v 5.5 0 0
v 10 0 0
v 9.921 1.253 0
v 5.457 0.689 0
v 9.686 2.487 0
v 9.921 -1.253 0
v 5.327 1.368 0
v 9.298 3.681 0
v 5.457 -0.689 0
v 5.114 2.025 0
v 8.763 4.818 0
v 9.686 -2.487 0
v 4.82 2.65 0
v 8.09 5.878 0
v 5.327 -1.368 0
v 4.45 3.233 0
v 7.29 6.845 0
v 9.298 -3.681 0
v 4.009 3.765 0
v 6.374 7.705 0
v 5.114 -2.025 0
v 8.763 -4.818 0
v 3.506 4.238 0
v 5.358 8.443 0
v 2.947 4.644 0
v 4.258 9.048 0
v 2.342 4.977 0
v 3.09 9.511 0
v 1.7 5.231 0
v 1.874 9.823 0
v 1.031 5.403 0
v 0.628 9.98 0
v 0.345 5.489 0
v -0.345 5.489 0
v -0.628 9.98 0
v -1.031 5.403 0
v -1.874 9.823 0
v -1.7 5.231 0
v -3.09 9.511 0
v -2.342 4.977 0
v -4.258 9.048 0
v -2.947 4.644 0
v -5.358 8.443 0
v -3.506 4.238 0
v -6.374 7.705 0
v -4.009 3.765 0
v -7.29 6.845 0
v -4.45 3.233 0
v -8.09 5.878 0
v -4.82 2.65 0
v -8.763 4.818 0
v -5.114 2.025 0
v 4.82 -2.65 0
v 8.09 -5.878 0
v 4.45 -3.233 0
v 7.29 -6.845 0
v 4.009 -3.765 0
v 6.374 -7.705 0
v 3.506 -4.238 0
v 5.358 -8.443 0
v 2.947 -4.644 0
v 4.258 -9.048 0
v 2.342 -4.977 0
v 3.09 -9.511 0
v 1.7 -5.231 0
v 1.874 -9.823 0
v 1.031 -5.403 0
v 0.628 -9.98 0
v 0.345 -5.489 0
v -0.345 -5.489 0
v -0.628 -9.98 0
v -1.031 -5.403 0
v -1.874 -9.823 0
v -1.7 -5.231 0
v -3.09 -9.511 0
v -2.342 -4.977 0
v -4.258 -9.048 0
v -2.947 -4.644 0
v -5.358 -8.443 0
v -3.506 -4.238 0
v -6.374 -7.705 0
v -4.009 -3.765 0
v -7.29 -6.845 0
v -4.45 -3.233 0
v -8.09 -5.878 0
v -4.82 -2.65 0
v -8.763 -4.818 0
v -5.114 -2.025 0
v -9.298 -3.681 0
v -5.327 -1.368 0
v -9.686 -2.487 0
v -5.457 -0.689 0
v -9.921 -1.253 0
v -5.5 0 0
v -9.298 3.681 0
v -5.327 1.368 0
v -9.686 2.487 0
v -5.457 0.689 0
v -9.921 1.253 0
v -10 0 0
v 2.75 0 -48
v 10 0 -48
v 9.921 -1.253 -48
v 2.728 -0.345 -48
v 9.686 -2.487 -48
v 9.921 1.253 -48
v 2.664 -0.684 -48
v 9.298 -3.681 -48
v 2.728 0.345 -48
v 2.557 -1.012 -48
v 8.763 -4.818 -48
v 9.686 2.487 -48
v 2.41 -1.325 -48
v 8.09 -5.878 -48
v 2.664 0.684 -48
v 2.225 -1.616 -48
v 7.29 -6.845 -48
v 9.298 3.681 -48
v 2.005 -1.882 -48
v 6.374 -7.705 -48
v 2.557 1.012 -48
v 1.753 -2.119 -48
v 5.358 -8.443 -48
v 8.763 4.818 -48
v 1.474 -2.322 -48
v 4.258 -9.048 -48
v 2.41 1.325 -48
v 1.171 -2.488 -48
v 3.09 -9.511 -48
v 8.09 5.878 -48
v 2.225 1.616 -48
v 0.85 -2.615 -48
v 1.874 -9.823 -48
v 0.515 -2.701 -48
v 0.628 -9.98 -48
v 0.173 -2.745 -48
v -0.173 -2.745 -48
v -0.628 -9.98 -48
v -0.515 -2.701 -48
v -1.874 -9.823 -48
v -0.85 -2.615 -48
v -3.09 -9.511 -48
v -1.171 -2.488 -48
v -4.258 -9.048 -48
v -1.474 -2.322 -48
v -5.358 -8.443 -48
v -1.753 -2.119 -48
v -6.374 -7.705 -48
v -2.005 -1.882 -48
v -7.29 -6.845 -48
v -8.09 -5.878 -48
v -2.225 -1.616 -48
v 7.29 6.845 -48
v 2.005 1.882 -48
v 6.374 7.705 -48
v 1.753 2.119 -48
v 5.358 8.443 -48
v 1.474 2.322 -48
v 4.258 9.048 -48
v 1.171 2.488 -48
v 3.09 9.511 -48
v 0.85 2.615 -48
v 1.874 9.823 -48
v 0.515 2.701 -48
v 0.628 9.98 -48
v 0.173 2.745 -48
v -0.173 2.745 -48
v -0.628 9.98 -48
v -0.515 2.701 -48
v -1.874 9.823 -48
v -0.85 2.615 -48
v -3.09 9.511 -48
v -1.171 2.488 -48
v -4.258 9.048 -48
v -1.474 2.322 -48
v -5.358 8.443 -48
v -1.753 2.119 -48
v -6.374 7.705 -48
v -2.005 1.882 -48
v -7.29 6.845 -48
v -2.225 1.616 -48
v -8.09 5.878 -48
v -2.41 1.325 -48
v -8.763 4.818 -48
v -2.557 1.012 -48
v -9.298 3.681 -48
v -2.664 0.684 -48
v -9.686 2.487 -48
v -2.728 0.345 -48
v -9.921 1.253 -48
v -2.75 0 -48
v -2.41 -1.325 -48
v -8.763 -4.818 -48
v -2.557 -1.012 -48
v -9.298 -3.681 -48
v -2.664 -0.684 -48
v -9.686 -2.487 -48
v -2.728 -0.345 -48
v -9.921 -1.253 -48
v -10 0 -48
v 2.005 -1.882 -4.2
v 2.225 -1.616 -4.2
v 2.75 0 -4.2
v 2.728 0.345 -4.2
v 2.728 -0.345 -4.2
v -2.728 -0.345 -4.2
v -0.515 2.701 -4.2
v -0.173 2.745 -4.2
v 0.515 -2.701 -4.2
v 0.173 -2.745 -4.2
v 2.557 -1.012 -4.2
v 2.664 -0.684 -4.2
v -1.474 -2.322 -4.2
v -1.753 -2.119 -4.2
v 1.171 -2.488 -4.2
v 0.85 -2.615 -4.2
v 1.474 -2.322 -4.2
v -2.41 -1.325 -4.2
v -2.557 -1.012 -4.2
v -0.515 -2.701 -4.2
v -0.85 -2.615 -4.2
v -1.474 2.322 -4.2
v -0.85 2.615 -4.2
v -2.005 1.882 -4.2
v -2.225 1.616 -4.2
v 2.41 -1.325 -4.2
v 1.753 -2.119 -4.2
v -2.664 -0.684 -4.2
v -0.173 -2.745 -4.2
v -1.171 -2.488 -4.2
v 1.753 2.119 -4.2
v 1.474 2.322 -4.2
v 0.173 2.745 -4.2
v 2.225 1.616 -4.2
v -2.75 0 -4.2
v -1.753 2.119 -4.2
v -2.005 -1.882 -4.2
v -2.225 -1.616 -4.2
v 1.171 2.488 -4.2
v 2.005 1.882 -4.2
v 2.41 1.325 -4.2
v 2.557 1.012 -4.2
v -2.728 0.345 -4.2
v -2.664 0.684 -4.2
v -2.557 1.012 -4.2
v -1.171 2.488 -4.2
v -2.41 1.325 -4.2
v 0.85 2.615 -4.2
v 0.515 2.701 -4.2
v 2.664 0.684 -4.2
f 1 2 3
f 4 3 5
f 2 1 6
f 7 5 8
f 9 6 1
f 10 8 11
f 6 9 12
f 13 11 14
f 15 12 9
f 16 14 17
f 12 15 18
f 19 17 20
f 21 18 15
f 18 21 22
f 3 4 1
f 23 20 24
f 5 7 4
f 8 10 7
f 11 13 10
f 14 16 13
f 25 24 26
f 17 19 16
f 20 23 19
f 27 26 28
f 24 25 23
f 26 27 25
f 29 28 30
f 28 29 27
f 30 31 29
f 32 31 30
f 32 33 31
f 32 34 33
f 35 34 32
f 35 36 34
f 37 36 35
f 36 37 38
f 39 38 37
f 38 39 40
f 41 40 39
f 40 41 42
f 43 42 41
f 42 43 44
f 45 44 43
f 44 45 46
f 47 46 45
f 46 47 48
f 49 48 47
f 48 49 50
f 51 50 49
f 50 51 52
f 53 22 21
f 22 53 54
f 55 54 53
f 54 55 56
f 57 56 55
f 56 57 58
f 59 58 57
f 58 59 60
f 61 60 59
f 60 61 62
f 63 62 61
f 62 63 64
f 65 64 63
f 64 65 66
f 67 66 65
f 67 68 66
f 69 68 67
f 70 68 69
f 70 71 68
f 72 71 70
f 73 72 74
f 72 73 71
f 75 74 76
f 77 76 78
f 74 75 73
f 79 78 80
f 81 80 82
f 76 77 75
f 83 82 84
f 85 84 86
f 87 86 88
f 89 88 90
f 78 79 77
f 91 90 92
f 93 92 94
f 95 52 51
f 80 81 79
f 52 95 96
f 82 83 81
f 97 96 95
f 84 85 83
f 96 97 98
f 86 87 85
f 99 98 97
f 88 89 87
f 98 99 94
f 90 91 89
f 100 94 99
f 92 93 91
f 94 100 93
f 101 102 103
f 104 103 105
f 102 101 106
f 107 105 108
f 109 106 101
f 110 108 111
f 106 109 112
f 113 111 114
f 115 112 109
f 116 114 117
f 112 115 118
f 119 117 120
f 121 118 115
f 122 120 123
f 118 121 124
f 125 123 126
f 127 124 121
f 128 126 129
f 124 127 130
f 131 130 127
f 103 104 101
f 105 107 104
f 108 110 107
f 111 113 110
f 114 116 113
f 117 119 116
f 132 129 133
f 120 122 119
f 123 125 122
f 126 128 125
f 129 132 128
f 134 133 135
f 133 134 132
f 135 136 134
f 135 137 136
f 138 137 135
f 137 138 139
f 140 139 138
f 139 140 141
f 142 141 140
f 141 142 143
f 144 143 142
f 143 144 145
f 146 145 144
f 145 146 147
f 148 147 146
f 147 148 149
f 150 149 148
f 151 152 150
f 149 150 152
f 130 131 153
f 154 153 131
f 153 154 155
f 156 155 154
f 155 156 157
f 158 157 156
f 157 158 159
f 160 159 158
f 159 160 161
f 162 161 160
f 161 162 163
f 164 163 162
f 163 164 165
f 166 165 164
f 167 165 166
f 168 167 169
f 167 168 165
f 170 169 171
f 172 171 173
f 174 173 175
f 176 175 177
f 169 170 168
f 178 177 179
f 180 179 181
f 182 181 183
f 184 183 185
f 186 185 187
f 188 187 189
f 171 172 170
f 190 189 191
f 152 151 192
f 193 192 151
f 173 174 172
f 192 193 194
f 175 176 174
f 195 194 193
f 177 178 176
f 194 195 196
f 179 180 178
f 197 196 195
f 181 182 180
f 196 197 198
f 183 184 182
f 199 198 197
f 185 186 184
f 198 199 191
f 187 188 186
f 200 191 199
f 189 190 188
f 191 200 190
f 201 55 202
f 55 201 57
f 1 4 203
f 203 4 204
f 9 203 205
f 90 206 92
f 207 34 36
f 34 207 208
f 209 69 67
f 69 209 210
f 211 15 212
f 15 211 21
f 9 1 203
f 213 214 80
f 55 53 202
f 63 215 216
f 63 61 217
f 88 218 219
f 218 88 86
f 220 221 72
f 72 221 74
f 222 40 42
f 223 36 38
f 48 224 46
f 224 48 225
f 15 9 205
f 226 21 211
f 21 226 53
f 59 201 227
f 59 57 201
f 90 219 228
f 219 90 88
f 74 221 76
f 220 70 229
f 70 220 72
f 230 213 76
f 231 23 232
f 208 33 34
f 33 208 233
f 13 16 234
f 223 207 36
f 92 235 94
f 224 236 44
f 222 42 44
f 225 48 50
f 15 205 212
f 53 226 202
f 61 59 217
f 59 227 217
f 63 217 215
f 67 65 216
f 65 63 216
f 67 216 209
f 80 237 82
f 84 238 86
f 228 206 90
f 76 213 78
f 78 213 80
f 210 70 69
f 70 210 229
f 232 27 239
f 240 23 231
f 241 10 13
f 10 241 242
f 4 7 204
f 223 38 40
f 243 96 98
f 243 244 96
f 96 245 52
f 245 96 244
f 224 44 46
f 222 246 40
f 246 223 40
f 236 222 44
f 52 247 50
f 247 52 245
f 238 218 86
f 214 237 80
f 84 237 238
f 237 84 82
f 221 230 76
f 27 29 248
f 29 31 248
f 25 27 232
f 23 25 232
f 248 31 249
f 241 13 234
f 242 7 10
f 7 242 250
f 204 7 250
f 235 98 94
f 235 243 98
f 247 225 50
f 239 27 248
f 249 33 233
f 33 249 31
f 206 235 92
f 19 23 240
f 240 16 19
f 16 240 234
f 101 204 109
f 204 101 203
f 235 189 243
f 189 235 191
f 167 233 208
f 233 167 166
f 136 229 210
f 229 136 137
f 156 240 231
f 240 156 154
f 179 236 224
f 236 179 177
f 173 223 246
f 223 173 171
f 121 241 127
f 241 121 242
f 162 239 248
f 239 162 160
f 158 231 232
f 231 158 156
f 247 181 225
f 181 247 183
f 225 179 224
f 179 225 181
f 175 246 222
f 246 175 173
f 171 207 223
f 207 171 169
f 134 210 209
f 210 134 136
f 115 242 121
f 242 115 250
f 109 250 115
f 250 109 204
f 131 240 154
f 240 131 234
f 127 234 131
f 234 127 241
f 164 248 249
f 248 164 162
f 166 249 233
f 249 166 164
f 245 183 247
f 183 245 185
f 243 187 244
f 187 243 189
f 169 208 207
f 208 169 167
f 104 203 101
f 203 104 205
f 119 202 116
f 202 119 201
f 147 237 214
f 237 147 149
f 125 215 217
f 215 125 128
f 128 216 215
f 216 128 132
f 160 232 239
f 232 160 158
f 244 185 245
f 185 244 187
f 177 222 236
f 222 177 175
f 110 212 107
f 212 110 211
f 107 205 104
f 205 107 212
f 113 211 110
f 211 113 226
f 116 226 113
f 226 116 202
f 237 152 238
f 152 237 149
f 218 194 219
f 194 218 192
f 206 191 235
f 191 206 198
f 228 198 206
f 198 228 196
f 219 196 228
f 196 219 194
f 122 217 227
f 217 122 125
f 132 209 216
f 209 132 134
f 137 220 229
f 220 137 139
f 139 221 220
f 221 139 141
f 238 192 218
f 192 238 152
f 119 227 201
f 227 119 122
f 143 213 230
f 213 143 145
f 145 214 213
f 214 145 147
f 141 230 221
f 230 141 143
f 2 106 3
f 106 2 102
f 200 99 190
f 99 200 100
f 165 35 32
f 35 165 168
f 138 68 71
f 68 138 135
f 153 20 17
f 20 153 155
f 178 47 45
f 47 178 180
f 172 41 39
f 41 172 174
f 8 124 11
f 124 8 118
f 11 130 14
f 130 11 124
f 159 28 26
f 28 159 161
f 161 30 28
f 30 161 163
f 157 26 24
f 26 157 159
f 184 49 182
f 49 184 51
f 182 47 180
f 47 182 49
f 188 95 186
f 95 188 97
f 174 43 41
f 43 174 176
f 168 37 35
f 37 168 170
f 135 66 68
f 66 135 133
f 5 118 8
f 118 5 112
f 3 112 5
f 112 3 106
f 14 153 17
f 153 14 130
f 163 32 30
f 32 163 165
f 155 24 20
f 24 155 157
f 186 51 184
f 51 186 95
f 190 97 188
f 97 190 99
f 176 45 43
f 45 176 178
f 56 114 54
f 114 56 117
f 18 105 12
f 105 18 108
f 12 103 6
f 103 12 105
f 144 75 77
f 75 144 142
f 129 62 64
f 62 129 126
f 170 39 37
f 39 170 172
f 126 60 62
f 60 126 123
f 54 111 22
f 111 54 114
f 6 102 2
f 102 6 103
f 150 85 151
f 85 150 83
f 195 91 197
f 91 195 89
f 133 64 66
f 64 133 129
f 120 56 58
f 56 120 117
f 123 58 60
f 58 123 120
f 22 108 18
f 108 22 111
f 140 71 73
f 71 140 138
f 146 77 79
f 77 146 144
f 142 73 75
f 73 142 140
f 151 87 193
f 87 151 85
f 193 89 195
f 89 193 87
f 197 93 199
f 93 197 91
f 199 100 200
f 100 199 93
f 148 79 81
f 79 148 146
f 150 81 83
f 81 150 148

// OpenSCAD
$fn = 50;


difference() {
	union() {
		translate(v = [0, 0, -48.0000000000]) {
			cylinder(h = 48, r = 10.0000000000);
		}
		cylinder(h = 0, r = 16.0000000000);
	}
	union() {
		translate(v = [0, 0, 0]) {
			rotate(a = [0, 0, 0]) {
				difference() {
					union() {
						#translate(v = [0, 0, -48.0000000000]) {
							cylinder(h = 48, r = 2.2500000000);
						}
						#translate(v = [0, 0, -4.2000000000]) {
							cylinder(h = 4.2000000000, r = 10.0000000000, r1 = 2.7500000000, r2 = 5.5000000000);
						}
						#translate(v = [0, 0, -48.0000000000]) {
							cylinder(h = 48, r = 2.7500000000);
						}
						#translate(v = [0, 0, -48.0000000000]) {
							cylinder(h = 48, r = 2.2500000000);
						}
					}
					union();
				}
			}
		}
	}
}
